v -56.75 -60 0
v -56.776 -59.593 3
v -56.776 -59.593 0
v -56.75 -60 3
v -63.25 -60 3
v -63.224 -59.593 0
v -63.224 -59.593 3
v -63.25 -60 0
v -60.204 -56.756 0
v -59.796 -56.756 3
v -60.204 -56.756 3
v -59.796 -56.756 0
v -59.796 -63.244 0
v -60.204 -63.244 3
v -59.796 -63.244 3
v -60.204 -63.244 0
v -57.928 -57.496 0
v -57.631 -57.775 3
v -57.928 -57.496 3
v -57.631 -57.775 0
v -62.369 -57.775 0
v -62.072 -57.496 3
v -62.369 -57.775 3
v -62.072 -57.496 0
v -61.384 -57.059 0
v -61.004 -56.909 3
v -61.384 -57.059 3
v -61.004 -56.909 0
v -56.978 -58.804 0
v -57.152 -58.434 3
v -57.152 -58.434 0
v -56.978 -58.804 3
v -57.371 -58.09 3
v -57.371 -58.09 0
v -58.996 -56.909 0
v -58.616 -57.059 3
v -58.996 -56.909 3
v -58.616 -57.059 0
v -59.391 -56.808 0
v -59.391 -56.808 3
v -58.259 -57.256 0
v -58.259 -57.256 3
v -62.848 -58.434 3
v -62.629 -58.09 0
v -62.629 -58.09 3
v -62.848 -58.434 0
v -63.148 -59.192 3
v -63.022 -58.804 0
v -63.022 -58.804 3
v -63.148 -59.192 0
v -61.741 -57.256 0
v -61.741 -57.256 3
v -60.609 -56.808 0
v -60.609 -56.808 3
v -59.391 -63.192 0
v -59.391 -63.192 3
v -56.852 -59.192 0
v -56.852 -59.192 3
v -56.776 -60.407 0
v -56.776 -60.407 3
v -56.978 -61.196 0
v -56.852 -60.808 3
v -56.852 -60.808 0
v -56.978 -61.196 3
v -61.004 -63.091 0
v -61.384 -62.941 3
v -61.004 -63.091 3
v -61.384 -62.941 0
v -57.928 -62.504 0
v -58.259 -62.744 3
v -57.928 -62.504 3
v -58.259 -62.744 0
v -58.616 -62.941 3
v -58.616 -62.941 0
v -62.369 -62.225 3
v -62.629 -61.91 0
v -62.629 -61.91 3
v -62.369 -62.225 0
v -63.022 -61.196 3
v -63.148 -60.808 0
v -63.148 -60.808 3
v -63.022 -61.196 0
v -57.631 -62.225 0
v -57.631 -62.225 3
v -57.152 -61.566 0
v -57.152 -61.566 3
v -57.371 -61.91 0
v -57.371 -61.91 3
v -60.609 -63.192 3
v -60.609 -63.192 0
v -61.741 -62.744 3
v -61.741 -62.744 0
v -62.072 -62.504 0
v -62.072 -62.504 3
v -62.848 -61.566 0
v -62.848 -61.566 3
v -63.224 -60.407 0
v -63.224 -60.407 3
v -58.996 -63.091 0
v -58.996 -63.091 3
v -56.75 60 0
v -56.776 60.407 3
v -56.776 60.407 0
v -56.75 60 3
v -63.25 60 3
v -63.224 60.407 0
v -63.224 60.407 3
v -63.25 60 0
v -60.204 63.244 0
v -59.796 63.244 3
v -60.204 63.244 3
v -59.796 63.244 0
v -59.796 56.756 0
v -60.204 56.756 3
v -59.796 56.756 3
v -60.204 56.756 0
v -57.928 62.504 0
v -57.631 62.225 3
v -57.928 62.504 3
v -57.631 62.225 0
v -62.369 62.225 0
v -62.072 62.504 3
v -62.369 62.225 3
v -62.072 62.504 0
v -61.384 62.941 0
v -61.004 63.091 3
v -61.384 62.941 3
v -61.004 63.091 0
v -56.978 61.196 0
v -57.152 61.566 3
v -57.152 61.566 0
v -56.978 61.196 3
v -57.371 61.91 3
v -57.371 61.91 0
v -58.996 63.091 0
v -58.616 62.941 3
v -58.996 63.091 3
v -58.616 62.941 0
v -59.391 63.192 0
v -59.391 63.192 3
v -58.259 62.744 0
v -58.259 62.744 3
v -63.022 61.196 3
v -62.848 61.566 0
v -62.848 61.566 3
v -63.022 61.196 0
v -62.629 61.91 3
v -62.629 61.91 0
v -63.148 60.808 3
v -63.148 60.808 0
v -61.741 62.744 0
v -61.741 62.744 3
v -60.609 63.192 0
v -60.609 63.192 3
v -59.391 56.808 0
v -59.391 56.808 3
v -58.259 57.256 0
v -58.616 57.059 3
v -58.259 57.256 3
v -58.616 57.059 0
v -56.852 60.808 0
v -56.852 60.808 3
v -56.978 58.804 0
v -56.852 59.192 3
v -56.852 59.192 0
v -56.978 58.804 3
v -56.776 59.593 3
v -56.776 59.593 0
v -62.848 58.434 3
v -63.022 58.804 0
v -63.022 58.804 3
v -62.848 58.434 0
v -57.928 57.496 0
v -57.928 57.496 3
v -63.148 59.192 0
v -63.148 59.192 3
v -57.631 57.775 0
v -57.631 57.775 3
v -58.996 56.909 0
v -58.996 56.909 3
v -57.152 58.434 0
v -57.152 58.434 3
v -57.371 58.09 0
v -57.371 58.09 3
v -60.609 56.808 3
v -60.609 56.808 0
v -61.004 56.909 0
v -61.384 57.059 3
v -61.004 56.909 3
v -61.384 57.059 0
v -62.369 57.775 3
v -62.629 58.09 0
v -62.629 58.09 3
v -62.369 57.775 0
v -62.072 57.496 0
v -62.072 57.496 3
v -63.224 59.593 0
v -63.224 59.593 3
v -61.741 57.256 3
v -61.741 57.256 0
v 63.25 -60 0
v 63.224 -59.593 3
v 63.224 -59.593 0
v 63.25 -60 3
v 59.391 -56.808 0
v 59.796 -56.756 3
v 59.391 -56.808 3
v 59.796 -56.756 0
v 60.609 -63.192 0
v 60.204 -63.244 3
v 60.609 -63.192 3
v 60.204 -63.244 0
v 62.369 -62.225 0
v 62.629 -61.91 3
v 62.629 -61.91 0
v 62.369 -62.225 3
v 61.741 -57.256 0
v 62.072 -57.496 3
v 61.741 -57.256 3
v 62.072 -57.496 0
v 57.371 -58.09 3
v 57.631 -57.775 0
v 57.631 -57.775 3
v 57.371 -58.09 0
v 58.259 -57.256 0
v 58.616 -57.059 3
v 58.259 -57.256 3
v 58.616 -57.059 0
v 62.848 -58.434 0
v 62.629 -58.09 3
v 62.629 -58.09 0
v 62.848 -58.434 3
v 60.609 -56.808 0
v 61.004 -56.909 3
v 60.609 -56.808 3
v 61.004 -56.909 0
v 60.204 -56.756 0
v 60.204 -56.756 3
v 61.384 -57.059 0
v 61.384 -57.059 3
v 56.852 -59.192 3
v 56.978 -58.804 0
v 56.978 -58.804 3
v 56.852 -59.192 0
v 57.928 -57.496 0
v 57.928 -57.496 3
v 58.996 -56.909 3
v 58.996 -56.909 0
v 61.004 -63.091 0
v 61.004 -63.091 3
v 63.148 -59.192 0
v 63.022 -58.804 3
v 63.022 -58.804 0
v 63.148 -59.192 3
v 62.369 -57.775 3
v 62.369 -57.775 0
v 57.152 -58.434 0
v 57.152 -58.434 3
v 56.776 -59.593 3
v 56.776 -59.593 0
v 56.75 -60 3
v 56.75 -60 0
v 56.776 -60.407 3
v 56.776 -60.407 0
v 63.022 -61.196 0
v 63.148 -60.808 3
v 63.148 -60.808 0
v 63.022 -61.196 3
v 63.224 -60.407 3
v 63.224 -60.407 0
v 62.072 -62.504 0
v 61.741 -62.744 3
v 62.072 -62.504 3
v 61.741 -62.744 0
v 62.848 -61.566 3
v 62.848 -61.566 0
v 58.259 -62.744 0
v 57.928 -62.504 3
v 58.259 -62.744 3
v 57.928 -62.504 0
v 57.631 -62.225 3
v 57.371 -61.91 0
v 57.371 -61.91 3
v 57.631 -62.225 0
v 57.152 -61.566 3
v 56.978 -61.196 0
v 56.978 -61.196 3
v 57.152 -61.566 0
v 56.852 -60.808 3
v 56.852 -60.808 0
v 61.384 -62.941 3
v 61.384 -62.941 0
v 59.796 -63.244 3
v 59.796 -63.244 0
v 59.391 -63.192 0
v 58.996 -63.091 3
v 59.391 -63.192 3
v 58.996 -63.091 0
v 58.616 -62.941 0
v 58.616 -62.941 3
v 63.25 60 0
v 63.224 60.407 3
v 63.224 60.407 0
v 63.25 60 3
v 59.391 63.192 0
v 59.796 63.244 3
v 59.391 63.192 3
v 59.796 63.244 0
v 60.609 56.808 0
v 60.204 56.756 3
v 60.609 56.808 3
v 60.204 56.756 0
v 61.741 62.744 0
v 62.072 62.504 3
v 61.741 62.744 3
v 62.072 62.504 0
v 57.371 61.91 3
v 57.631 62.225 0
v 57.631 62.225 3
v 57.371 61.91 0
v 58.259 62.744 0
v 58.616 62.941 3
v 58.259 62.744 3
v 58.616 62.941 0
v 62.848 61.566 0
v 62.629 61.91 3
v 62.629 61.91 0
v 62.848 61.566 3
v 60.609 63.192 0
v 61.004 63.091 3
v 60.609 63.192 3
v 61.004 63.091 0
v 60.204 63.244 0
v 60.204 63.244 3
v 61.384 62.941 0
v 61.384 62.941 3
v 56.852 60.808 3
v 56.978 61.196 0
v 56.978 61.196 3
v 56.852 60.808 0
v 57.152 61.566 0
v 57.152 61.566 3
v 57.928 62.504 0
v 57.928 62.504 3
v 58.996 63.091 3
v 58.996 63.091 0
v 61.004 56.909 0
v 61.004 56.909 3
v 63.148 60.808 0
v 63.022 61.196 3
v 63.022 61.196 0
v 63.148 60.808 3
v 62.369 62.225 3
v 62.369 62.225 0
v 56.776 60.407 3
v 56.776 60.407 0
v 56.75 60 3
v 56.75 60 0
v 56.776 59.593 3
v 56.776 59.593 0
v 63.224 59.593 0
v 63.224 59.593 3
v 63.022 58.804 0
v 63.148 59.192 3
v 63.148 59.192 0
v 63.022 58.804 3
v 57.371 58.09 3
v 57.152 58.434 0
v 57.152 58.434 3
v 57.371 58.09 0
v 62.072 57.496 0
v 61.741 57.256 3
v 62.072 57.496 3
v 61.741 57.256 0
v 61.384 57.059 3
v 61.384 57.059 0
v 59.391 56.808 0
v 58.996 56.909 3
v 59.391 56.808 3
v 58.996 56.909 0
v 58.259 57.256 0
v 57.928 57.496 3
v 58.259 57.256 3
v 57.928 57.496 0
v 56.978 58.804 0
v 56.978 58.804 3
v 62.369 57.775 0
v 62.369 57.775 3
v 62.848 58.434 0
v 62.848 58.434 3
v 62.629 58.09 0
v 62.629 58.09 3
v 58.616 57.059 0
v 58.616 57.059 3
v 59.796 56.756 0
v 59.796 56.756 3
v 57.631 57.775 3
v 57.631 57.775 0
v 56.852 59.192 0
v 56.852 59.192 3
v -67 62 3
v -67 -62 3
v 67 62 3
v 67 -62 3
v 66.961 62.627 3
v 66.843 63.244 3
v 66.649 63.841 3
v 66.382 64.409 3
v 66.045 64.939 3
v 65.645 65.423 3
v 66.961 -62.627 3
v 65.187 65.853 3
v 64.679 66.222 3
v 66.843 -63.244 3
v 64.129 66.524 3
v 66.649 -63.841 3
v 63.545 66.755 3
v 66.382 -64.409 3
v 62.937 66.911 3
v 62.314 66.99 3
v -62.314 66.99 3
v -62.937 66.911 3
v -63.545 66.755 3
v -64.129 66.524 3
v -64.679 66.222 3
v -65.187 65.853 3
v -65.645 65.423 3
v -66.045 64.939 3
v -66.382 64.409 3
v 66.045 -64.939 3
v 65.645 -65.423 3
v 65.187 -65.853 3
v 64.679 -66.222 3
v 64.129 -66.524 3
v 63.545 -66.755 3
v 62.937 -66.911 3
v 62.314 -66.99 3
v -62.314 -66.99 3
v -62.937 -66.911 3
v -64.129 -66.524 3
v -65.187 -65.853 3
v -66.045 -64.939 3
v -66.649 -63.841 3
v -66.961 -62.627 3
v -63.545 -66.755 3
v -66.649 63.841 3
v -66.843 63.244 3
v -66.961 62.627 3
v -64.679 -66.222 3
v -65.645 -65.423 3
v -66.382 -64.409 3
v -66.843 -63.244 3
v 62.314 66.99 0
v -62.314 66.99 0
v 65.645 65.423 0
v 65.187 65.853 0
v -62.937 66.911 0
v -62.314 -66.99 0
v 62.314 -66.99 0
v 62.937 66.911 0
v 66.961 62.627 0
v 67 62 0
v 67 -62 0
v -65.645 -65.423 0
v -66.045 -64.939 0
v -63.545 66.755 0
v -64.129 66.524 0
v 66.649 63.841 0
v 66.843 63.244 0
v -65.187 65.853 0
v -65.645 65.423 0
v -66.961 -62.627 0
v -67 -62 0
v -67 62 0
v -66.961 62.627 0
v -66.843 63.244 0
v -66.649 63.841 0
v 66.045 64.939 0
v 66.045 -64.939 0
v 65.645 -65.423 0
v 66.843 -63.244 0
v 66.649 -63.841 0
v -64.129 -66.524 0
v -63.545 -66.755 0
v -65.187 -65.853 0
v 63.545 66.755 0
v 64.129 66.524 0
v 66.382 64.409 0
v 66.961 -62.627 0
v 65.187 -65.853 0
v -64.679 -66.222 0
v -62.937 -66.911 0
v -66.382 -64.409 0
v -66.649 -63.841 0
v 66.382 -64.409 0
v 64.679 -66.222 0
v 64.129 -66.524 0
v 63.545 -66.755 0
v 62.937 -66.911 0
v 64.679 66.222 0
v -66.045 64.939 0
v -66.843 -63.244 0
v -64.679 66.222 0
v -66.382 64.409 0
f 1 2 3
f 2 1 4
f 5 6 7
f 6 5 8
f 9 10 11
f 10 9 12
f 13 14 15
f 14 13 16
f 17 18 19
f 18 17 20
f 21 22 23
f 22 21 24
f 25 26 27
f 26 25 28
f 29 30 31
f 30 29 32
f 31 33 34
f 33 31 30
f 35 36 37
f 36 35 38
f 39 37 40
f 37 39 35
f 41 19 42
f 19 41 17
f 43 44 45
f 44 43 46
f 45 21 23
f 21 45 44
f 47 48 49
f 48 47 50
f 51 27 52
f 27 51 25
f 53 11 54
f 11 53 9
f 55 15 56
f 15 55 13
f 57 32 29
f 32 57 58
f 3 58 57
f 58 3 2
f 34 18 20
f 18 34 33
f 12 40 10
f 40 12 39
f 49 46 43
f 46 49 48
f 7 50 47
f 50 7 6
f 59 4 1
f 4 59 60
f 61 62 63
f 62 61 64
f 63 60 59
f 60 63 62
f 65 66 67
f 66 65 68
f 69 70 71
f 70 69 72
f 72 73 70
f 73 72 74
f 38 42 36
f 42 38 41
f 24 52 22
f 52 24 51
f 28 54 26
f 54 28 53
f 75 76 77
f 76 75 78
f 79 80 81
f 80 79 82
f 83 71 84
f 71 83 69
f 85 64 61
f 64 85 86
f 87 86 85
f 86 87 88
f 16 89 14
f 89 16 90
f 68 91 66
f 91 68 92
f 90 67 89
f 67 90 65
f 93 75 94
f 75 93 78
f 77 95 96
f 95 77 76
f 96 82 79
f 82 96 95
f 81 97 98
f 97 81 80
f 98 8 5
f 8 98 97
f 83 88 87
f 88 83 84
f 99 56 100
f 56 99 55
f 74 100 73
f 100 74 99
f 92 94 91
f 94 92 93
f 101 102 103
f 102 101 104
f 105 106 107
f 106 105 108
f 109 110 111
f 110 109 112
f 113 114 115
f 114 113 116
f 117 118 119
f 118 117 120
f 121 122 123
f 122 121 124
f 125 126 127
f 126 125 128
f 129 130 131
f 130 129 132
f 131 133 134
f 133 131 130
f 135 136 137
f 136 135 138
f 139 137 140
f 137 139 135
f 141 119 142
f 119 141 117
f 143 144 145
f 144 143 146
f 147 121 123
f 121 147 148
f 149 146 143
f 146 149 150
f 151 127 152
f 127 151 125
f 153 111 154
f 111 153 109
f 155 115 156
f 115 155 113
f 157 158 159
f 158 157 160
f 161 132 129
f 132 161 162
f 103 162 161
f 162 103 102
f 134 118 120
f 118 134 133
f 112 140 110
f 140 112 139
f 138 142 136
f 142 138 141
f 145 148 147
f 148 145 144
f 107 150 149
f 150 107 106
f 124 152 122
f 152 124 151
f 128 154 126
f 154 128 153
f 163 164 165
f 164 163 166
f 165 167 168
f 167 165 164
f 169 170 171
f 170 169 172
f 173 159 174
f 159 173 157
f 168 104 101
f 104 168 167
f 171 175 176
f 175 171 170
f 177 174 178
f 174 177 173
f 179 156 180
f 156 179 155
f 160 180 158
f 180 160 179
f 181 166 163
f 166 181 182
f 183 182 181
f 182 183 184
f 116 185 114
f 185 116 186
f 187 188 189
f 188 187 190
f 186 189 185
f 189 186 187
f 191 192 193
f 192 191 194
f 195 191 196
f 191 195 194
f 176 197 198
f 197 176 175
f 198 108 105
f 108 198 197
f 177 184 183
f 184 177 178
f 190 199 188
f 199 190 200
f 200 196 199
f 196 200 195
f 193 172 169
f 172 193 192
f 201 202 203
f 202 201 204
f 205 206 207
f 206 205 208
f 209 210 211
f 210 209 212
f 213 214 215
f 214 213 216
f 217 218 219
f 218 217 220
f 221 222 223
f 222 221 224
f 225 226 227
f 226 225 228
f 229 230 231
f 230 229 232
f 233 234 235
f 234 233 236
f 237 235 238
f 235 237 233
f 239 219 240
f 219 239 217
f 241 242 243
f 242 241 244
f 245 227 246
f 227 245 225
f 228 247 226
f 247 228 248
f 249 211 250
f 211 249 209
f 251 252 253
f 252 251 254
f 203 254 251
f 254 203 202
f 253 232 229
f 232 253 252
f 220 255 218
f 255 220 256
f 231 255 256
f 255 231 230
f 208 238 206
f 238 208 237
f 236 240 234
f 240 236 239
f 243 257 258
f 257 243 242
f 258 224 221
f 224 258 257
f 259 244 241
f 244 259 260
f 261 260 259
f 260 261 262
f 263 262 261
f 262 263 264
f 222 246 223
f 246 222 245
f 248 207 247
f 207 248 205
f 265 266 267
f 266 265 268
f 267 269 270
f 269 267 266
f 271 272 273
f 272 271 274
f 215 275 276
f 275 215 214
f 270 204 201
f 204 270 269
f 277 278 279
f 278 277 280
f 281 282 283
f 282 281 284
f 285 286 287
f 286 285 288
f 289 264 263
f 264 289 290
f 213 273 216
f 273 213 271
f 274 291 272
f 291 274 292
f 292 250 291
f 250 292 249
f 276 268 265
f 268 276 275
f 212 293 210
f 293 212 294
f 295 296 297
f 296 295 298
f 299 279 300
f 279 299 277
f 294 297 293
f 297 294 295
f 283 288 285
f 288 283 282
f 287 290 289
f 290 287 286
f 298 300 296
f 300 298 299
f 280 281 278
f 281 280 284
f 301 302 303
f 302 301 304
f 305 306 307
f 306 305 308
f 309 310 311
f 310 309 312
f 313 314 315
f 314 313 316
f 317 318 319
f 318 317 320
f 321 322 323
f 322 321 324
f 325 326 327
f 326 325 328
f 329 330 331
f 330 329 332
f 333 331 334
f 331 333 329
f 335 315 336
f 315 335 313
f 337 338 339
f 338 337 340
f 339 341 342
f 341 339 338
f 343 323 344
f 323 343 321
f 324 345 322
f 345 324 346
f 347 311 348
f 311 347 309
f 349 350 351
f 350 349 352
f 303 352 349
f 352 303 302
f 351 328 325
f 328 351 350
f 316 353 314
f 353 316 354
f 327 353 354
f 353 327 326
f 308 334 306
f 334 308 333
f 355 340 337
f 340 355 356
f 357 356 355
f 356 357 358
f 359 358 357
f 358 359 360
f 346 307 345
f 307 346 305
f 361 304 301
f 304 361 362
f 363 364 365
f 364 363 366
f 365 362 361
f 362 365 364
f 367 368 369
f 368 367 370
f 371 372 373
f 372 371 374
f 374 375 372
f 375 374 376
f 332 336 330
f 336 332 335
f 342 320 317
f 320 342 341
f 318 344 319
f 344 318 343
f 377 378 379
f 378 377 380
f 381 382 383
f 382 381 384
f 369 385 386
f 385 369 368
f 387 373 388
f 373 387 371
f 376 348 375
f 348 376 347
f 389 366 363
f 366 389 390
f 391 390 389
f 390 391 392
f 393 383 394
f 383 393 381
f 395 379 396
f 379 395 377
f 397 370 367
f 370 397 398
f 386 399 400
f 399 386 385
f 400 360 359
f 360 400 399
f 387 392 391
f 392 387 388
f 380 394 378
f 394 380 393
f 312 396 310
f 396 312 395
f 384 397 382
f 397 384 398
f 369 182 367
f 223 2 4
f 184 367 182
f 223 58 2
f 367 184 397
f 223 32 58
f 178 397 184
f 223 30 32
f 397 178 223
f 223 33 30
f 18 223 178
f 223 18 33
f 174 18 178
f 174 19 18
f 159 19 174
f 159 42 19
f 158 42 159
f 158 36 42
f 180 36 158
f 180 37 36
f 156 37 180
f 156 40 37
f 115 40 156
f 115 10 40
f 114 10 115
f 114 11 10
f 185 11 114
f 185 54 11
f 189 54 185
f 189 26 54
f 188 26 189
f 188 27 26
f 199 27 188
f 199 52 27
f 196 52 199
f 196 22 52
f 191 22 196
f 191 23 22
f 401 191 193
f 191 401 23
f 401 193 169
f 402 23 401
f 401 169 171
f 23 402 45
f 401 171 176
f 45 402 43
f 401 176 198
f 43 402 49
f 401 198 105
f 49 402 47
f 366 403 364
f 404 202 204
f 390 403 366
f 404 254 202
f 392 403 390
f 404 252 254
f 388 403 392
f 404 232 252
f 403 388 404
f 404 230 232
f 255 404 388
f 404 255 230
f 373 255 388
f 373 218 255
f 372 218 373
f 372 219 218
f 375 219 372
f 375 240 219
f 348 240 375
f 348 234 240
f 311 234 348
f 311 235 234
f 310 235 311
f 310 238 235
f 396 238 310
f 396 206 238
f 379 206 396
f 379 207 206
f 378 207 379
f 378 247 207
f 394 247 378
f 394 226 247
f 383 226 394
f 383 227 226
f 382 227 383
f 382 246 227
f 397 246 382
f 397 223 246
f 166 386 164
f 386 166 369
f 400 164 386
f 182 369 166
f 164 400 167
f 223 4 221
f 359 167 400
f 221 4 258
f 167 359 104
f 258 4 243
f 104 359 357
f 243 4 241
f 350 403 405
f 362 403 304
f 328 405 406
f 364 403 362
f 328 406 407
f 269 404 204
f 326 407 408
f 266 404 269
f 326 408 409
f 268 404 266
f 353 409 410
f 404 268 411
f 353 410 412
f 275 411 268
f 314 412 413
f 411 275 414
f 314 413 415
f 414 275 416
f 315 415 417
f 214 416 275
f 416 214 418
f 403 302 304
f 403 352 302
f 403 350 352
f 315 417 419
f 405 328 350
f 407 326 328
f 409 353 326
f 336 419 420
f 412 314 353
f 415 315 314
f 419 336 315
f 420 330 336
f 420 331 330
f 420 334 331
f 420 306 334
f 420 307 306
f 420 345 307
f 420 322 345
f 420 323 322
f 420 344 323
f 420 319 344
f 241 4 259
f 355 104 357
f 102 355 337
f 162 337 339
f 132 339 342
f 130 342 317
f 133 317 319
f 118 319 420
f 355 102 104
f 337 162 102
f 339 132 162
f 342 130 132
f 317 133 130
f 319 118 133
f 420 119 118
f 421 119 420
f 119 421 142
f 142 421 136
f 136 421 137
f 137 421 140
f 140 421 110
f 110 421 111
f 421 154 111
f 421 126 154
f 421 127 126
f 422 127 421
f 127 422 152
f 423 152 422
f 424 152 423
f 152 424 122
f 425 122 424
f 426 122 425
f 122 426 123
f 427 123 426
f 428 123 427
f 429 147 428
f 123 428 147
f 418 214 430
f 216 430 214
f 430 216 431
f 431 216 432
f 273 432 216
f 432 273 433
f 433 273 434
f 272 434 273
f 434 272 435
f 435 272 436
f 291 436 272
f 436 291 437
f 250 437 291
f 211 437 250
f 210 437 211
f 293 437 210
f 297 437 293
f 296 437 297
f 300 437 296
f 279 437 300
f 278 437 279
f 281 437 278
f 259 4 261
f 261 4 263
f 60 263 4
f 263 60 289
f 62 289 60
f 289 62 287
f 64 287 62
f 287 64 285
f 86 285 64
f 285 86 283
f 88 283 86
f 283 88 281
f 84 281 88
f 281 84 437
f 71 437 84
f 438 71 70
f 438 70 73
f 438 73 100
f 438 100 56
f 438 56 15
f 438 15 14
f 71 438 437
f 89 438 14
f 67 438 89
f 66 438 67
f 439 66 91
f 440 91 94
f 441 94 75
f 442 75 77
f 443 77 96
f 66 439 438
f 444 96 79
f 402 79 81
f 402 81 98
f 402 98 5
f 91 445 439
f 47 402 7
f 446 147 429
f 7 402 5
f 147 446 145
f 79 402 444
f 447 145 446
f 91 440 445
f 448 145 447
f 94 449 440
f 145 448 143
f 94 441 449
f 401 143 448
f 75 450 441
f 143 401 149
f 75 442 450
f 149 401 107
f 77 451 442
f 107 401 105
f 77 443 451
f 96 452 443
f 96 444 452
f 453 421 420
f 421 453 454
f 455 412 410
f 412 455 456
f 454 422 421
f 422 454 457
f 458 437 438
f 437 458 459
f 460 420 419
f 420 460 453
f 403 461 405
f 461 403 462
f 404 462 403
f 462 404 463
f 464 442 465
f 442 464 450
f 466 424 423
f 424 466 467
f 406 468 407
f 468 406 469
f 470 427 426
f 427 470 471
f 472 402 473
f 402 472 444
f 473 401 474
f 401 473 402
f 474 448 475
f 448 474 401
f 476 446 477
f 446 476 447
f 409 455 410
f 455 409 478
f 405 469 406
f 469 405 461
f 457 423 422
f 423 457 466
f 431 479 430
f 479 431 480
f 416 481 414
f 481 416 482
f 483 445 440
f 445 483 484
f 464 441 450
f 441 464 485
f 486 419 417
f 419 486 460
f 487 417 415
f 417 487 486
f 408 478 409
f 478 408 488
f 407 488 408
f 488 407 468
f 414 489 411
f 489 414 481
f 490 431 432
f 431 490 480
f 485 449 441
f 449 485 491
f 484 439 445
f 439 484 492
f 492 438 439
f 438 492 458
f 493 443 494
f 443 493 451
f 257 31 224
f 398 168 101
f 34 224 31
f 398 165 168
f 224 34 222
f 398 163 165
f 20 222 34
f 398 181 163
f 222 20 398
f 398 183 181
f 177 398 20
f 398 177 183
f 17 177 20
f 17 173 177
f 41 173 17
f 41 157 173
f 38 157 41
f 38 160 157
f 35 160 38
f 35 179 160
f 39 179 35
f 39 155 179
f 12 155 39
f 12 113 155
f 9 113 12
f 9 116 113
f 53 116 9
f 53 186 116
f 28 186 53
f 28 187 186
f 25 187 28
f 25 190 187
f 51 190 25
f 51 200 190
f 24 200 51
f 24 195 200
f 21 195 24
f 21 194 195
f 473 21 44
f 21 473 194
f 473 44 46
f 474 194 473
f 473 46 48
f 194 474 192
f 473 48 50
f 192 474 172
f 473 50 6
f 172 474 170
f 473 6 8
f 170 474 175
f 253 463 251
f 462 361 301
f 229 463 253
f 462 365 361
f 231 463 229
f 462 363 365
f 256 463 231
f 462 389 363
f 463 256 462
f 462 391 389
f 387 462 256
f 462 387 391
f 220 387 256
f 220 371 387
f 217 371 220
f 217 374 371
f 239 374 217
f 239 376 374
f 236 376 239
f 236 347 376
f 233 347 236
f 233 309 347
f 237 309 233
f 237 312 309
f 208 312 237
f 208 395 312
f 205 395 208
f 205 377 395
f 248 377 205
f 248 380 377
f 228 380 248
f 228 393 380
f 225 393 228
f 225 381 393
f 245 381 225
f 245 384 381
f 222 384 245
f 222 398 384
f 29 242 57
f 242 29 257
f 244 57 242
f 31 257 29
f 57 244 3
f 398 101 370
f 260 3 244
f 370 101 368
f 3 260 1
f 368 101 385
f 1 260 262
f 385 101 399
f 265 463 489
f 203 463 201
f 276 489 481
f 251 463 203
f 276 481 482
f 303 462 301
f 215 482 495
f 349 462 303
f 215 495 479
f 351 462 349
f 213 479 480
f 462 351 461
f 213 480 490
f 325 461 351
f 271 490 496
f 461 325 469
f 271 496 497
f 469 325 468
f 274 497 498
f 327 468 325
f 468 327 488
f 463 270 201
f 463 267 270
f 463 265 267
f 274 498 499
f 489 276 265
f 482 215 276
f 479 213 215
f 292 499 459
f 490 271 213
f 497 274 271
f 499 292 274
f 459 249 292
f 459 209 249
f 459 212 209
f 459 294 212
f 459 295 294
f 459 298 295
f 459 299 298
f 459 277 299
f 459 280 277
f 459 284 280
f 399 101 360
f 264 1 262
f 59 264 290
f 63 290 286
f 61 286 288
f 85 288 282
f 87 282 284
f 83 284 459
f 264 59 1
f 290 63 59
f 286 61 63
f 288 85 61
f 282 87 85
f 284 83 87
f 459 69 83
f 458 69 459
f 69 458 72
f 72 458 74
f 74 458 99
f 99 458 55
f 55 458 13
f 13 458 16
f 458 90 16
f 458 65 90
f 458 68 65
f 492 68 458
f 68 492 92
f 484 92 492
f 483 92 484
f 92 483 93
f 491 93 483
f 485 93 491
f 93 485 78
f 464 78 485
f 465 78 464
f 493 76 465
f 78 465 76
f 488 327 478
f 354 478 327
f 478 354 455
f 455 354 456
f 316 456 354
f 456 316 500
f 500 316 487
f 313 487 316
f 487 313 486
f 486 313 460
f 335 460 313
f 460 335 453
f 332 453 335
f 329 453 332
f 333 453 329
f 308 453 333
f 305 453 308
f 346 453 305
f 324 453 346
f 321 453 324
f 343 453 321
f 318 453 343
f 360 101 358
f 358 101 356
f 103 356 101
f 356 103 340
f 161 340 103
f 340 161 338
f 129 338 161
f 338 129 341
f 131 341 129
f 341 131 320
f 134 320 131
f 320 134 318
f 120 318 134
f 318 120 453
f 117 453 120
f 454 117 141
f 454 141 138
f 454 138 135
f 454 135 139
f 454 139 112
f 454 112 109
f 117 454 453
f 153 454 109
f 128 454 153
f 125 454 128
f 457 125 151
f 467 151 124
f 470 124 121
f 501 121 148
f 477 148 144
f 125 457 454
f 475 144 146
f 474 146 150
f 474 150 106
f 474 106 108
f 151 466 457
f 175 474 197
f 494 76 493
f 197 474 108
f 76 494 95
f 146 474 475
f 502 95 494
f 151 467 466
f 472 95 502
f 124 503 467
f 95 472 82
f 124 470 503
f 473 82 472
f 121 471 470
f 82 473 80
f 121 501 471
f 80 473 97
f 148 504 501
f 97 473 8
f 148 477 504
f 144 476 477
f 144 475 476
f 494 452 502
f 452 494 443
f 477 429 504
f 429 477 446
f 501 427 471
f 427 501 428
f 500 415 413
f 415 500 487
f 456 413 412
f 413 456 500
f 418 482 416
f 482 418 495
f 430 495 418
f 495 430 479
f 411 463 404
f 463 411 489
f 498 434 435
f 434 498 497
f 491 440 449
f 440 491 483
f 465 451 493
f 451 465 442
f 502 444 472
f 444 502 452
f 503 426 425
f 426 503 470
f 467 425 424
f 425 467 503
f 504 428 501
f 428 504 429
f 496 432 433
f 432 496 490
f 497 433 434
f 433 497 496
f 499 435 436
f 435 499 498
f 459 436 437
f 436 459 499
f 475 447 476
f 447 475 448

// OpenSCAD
$fn = 50;


difference() {
	union() {
		hull() {
			translate(v = [-62.0000000000, 62.0000000000, 0]) {
				cylinder(h = 3, r = 5);
			}
			translate(v = [62.0000000000, 62.0000000000, 0]) {
				cylinder(h = 3, r = 5);
			}
			translate(v = [-62.0000000000, -62.0000000000, 0]) {
				cylinder(h = 3, r = 5);
			}
			translate(v = [62.0000000000, -62.0000000000, 0]) {
				cylinder(h = 3, r = 5);
			}
		}
	}
	union() {
		translate(v = [-60.0000000000, -60.0000000000, -100.0000000000]) {
			cylinder(h = 200, r = 3.2500000000);
		}
		translate(v = [-60.0000000000, 60.0000000000, -100.0000000000]) {
			cylinder(h = 200, r = 3.2500000000);
		}
		translate(v = [60.0000000000, -60.0000000000, -100.0000000000]) {
			cylinder(h = 200, r = 3.2500000000);
		}
		translate(v = [60.0000000000, 60.0000000000, -100.0000000000]) {
			cylinder(h = 200, r = 3.2500000000);
		}
	}
}
